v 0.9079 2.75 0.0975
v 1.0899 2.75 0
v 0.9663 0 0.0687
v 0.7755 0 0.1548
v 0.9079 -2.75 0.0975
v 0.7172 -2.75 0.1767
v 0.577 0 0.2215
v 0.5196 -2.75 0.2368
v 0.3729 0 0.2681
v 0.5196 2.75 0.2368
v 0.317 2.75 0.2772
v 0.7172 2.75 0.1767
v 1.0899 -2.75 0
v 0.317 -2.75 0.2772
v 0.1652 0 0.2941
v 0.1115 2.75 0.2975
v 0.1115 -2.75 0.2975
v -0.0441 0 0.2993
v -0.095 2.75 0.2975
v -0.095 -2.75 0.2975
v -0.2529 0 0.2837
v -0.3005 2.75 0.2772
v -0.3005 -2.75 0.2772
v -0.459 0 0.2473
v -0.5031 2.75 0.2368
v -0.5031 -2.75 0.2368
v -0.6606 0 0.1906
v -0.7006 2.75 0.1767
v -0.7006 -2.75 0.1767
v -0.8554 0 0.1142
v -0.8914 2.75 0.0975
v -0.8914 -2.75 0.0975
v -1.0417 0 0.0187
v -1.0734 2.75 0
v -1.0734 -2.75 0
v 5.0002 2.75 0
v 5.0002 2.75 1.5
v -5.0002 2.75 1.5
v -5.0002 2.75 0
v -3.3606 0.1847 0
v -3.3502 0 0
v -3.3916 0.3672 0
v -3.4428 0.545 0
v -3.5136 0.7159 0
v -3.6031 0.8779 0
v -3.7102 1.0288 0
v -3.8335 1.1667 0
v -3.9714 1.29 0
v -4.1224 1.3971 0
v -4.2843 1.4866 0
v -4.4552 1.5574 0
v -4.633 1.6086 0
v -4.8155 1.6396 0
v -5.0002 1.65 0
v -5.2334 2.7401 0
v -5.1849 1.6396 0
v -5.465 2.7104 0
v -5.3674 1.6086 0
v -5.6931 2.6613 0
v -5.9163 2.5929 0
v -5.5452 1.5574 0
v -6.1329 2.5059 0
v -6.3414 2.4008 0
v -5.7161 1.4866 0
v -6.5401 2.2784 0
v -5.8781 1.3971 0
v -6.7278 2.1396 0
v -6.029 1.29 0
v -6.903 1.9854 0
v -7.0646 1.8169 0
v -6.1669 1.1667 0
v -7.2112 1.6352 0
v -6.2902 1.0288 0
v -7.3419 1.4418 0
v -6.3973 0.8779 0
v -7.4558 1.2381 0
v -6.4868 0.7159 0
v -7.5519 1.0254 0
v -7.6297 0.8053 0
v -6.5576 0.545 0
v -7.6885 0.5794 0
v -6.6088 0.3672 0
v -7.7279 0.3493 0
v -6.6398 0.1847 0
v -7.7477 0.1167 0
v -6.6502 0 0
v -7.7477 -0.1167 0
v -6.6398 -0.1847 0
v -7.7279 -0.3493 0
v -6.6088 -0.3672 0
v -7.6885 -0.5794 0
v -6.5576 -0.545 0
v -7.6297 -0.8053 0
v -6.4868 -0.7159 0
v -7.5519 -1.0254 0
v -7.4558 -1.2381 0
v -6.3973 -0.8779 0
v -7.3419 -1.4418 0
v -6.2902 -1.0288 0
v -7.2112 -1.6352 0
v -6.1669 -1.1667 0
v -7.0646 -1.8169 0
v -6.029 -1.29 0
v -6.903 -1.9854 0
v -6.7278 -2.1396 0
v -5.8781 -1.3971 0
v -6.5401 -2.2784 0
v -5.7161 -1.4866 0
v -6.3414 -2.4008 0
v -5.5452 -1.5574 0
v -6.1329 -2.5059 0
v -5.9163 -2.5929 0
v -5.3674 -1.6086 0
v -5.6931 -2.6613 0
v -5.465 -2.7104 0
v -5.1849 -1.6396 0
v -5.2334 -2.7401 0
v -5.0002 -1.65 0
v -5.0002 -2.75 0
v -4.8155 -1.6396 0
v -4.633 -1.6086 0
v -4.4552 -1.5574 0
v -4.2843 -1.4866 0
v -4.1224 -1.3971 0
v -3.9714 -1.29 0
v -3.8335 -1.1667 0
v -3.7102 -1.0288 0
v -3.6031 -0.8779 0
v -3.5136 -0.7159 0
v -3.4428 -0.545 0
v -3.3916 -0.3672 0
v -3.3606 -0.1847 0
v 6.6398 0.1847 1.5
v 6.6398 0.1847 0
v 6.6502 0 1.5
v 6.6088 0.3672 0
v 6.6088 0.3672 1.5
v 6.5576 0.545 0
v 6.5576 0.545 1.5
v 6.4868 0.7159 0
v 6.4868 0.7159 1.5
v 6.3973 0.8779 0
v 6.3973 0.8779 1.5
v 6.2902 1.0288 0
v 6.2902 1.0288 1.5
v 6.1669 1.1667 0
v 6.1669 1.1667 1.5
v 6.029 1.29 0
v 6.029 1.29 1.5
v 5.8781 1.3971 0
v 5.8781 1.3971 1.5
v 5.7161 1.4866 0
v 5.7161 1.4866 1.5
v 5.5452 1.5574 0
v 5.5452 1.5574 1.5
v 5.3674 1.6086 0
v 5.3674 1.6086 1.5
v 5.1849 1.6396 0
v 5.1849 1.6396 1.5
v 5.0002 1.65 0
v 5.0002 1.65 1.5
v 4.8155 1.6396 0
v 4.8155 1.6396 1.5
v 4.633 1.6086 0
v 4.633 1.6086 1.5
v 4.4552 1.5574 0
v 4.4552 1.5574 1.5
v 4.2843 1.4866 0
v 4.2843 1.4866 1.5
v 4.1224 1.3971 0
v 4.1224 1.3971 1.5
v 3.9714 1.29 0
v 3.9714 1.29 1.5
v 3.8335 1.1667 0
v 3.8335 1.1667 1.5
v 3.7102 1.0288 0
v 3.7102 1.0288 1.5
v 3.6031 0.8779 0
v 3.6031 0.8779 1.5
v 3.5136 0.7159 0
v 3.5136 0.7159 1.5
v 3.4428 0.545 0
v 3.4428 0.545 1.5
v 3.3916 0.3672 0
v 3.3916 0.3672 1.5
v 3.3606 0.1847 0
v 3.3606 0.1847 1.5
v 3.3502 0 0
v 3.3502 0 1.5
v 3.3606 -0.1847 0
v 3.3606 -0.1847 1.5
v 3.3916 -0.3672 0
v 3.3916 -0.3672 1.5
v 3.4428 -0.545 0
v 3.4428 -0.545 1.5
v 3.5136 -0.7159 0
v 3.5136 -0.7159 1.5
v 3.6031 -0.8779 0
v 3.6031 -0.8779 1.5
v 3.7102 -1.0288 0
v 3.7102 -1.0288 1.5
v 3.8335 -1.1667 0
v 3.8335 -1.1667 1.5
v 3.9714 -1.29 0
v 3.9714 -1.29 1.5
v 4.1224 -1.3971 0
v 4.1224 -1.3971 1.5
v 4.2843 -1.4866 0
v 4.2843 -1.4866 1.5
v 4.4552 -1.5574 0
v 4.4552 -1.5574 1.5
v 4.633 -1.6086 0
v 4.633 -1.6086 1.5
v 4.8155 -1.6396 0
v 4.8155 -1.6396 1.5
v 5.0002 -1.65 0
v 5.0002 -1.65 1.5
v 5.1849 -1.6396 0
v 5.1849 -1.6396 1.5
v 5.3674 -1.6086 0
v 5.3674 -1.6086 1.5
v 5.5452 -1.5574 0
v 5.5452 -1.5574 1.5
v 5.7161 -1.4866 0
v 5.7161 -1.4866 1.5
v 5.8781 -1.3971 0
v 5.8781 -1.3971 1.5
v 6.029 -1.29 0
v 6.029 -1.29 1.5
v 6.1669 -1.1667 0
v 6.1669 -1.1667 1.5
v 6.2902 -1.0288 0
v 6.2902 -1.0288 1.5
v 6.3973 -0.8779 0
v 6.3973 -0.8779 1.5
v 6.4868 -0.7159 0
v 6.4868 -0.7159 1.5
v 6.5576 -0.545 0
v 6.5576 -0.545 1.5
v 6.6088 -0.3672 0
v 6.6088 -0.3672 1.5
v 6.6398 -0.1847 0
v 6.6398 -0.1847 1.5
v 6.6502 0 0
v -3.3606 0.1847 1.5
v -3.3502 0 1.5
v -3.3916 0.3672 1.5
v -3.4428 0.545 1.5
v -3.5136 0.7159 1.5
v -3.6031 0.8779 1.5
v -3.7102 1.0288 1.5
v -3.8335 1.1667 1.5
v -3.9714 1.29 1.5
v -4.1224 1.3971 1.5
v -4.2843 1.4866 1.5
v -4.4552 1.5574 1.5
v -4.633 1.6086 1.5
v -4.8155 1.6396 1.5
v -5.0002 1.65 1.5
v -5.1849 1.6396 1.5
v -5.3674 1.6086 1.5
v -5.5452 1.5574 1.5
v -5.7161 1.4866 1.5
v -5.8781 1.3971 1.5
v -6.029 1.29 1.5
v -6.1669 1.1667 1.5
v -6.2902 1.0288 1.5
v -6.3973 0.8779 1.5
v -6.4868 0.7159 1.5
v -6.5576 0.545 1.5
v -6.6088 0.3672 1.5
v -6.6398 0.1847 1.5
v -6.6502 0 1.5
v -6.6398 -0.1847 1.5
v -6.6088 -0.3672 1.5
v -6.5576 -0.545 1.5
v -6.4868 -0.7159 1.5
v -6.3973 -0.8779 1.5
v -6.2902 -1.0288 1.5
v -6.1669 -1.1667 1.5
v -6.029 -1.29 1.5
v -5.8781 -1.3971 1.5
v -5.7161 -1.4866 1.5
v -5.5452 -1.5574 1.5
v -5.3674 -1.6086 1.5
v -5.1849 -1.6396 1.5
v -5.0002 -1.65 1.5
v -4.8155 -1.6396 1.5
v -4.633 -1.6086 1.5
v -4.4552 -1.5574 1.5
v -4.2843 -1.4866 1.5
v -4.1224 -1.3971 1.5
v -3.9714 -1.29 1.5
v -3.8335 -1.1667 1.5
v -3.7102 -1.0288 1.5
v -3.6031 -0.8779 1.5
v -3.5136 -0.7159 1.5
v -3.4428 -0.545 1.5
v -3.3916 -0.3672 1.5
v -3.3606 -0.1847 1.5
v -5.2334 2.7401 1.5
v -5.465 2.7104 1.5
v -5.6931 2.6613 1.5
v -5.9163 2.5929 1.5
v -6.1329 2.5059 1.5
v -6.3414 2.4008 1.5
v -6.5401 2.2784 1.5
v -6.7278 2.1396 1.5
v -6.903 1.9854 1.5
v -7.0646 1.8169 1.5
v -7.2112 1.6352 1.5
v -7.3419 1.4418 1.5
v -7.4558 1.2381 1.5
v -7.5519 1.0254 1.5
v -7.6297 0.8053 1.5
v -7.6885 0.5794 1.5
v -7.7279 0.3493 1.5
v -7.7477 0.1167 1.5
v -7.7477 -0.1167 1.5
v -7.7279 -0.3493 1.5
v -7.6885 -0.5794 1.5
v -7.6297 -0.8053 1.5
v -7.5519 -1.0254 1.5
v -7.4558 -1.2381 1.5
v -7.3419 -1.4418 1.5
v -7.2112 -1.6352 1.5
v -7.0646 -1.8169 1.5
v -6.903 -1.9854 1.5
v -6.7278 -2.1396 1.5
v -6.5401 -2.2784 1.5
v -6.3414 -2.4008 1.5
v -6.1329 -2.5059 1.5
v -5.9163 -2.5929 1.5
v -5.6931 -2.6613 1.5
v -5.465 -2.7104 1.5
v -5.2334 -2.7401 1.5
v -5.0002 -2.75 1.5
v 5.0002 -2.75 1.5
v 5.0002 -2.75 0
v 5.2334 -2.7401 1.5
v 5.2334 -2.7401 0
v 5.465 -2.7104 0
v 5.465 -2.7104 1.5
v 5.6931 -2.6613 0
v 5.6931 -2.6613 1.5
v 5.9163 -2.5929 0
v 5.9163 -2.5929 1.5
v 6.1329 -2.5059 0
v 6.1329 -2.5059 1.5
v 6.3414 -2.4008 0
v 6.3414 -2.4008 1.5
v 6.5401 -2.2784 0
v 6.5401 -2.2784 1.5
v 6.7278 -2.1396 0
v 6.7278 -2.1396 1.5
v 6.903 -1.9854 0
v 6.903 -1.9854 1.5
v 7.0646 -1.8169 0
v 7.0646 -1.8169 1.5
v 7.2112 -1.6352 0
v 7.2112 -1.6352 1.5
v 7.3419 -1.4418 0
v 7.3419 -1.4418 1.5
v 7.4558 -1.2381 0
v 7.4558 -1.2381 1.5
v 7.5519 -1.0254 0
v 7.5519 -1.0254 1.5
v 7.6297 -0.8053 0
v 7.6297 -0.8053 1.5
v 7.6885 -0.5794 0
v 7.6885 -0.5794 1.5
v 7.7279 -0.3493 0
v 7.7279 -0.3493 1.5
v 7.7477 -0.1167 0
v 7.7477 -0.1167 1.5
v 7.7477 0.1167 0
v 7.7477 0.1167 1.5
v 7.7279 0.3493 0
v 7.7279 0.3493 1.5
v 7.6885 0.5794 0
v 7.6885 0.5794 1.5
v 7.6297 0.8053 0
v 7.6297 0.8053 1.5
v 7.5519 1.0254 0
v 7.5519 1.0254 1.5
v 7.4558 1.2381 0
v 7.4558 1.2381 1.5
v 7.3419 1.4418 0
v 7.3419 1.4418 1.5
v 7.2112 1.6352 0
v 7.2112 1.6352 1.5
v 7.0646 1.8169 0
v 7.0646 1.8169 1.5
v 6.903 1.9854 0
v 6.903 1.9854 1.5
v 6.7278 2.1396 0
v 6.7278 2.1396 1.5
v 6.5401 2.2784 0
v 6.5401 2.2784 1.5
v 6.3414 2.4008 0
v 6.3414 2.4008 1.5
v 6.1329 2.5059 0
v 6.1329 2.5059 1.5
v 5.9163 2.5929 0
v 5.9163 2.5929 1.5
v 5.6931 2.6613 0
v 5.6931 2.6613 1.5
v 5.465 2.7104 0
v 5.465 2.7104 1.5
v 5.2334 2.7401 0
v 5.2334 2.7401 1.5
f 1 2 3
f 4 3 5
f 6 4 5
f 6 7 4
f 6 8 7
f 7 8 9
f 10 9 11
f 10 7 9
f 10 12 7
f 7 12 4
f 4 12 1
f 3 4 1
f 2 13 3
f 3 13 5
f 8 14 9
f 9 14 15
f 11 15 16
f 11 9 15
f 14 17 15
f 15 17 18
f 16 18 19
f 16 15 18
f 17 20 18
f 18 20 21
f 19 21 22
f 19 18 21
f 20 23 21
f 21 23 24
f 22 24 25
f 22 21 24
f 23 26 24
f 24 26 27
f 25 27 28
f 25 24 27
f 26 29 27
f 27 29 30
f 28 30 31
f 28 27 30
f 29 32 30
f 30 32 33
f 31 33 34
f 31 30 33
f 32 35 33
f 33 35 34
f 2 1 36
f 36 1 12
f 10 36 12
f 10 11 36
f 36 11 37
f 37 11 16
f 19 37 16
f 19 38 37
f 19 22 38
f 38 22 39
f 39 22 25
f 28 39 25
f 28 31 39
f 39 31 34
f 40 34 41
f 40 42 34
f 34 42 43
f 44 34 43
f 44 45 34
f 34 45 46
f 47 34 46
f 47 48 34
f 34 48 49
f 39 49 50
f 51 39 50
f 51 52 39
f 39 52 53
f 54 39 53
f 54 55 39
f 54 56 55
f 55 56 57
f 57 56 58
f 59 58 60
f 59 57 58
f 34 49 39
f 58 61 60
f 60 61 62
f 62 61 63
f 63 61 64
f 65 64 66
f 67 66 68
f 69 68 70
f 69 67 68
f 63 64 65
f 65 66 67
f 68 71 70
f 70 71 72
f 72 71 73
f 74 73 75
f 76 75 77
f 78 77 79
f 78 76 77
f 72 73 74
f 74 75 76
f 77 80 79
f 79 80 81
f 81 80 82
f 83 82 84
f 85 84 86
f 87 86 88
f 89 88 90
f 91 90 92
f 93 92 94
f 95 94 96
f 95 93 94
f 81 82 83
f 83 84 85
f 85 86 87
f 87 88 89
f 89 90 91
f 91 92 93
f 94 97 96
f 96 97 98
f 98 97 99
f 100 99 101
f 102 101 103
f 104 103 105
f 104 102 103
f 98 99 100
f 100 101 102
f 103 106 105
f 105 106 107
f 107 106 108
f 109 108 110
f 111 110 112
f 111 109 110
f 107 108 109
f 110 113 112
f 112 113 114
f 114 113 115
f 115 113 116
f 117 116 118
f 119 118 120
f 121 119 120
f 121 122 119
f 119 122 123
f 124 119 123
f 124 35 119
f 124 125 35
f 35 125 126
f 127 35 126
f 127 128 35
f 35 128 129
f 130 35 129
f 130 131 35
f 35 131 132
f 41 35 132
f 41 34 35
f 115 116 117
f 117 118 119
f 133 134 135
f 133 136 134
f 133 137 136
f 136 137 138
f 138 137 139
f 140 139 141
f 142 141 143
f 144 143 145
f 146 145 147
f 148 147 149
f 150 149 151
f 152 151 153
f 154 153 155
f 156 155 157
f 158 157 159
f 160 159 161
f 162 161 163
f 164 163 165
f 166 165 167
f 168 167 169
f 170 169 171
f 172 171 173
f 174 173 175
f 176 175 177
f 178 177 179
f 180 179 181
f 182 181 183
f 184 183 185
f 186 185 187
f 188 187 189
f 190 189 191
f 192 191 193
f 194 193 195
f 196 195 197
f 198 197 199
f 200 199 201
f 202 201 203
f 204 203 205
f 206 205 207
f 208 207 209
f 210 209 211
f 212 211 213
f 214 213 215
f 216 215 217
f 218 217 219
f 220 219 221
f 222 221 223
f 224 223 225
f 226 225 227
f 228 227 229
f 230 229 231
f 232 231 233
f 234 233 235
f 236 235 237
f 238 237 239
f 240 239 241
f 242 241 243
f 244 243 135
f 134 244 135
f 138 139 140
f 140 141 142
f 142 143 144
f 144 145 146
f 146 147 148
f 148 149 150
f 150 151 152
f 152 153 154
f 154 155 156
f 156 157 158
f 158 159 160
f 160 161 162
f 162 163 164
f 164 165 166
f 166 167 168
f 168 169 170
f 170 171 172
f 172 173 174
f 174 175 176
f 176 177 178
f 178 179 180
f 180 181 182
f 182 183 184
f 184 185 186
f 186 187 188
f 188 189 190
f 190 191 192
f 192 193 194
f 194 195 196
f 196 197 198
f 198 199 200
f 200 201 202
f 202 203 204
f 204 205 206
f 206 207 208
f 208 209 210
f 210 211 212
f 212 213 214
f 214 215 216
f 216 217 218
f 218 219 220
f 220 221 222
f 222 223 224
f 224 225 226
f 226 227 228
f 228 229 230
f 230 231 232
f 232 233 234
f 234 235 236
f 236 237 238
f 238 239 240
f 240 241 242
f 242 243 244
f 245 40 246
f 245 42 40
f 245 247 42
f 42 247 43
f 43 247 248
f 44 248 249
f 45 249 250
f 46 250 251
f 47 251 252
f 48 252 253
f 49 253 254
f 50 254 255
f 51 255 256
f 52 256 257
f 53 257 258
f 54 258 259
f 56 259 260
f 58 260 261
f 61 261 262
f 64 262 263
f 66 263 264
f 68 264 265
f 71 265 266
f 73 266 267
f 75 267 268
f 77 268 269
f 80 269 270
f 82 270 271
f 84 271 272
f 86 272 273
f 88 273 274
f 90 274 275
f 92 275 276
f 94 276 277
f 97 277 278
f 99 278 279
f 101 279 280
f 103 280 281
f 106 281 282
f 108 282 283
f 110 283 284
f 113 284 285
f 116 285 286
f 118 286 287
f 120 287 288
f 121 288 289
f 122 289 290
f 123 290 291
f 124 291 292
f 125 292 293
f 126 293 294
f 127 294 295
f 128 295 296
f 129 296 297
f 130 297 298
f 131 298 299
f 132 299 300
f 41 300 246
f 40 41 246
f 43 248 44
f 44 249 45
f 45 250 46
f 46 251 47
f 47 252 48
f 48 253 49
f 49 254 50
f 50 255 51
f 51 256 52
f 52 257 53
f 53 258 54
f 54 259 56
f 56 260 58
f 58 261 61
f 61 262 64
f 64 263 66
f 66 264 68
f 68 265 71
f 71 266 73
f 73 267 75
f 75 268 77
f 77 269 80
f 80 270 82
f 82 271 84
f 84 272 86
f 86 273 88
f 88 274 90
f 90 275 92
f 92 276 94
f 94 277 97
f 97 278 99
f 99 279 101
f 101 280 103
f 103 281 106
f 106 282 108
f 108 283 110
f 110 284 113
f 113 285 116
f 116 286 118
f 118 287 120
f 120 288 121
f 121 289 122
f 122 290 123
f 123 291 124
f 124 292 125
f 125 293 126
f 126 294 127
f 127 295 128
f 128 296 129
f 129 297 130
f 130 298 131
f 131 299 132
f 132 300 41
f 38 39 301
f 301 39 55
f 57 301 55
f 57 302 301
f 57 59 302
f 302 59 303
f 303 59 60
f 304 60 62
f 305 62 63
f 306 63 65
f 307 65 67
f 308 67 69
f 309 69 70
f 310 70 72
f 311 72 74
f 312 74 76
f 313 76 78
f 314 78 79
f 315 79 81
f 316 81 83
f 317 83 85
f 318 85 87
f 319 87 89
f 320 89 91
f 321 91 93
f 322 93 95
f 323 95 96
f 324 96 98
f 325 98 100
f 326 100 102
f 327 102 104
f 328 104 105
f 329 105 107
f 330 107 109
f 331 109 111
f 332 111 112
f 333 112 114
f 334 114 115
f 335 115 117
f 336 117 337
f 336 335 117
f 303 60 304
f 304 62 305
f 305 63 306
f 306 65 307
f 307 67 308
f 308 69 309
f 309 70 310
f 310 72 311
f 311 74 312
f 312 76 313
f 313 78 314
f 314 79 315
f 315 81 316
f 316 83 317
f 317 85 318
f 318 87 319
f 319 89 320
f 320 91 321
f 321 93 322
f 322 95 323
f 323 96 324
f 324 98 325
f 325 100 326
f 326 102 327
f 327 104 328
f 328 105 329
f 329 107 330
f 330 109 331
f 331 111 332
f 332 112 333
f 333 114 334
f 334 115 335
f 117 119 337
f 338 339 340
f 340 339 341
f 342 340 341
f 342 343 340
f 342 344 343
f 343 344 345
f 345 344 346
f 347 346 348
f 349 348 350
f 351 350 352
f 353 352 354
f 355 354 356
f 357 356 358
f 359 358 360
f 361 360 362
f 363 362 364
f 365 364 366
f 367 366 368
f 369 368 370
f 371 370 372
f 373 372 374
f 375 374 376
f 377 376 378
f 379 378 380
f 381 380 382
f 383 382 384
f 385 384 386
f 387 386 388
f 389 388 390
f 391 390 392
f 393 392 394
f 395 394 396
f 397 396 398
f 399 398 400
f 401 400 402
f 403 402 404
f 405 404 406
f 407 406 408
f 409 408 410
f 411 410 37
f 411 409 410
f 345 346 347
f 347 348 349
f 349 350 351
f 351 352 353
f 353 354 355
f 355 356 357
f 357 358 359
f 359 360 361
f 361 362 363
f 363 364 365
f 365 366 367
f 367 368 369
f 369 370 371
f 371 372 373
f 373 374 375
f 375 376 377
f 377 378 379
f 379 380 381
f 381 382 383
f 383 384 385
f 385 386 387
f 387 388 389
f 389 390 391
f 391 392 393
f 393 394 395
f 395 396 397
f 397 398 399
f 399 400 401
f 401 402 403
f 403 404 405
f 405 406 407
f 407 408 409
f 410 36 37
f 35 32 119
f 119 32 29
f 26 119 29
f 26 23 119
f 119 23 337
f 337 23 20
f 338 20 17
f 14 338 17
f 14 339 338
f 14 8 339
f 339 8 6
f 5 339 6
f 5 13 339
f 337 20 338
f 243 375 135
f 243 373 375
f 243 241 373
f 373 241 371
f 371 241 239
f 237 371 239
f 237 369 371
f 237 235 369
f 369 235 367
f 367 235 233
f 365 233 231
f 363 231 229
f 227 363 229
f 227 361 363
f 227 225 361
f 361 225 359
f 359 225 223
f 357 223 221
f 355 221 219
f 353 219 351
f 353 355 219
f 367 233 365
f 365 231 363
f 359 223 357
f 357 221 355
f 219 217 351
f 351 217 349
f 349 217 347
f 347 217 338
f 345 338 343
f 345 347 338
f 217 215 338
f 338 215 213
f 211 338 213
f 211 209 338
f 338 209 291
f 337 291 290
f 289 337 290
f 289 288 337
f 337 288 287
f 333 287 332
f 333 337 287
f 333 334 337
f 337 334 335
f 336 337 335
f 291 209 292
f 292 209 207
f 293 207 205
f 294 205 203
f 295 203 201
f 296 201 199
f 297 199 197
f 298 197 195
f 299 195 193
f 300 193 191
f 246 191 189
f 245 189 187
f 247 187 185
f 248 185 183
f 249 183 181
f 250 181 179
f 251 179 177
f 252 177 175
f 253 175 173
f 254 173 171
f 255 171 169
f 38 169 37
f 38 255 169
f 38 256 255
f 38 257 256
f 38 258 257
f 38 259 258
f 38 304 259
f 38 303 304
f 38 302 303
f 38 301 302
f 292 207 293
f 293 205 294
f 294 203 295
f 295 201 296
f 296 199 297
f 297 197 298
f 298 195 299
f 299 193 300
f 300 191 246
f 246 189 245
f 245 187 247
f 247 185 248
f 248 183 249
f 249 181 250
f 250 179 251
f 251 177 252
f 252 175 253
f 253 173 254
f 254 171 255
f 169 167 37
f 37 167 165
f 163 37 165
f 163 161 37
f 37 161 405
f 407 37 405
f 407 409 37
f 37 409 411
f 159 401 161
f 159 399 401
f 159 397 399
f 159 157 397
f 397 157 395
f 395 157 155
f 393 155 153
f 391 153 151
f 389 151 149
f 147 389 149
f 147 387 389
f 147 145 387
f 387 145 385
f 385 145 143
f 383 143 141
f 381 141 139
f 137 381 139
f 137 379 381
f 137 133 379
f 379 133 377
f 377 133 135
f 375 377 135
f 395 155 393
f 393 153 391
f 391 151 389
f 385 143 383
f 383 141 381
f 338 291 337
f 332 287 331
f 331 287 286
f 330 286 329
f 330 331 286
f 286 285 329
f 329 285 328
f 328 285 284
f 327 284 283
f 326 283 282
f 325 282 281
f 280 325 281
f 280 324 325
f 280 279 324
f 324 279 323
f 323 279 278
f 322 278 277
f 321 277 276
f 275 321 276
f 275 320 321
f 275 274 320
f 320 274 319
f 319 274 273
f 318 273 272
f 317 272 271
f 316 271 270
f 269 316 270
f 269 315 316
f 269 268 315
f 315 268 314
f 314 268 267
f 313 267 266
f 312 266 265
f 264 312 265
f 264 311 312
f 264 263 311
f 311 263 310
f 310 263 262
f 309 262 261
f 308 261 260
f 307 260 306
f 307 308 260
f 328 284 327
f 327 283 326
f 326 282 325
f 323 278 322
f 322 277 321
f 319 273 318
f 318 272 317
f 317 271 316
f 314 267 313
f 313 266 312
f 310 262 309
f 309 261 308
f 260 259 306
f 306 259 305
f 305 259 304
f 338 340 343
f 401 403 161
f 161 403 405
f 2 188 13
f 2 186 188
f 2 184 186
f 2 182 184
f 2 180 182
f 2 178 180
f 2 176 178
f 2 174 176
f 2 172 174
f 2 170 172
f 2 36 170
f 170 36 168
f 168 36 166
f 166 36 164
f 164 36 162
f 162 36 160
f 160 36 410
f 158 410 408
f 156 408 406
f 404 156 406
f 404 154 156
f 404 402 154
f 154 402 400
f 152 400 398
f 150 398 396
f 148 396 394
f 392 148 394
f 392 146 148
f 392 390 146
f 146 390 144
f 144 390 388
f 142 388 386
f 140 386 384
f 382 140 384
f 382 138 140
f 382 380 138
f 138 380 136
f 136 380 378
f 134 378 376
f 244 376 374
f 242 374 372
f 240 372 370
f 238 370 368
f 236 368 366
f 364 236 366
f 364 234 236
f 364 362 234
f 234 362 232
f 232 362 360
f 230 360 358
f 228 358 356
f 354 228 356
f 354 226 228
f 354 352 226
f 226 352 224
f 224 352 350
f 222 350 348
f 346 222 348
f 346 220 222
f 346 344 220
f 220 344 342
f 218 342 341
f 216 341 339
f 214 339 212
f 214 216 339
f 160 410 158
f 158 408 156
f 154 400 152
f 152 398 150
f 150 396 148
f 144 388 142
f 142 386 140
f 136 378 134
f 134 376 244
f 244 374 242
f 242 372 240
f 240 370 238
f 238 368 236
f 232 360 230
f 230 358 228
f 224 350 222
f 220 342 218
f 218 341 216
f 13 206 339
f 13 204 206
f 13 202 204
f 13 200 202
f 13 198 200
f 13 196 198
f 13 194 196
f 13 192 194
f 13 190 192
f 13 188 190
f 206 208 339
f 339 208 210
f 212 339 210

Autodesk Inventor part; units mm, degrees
ref_plane "YZ Plane" through (0, 0, 0) normal (1, 0, 0) x (0, 1, 0)
ref_plane "XZ Plane" through (0, 0, 0) normal (0, 1, 0) x (-1, 0, 0)
ref_plane "XY Plane" through (0, 0, 0) normal (0, 0, 1) x (1, 0, 0)
sketch "Sketch1" plane through (0, 0, 0) normal (0, 0, 1) x (1, 0, 0)
  circle A0 centre (5.0002, 0) radius 1.25 construction
  line L0 (1.4779, -3) -> (1.4779, 3) construction
  line L1 (5.0002, -3) -> (1.4779, -3) construction
  arc A1 (5.0002, -3) -> (5.0002, 3) centre (5.0002, 0) ccw construction
  line L2 (1.4779, 3) -> (5.0002, 3) construction
  circle A2 centre (-5.0002, 0) radius 1.25 construction
  line L3 (-1.4614, 3) -> (-1.4614, -3) construction
  line L4 (-5.0002, 3) -> (-1.4614, 3) construction
  arc A3 (-5.0002, 3) -> (-5.0002, -3) centre (-5.0002, 0) ccw construction
  line L5 (-1.4614, -3) -> (-5.0002, -3) construction
  line L6 (-5.0002, 0) -> (5.0002, 0) construction
  line L7 (-5.0002, -2.75) -> (5.0002, -2.75)
  line L8 (5.0002, 2.75) -> (-5.0002, 2.75)
  arc A4 (-5.0002, 2.75) -> (-5.0002, -2.75) centre (-5.0002, 0) ccw
  arc A5 (5.0002, -2.75) -> (5.0002, 2.75) centre (5.0002, 0) ccw
  circle A6 centre (-5.0002, 0) radius 1.65
  circle A7 centre (5.0002, 0) radius 1.65
  point P0 (0, 0)
  point P1 (0, 0)
  dimension "d0" = 5.5
  dimension "d1" = 3.3
  dimension "d2" = 3.3
extrude "Extrusion1" add sketch "Sketch1" along normal blind 1.5
sketch "Sketch2" plane through (-5.0002, 2.75, 0) normal (0, 1, 0) x (1, 0, 0)
  circle A0 centre (5.0085, 1.8) radius 2.1
  arc A1 (5.0085, 3.6) -> (5.0085, -0.6) centre (5.0085, 1.5) ccw projected
  point P0 (5.0002, 0)
extrude "Extrusion2" cut sketch "Sketch2" against normal through all
properties part number "TubeClamp"
